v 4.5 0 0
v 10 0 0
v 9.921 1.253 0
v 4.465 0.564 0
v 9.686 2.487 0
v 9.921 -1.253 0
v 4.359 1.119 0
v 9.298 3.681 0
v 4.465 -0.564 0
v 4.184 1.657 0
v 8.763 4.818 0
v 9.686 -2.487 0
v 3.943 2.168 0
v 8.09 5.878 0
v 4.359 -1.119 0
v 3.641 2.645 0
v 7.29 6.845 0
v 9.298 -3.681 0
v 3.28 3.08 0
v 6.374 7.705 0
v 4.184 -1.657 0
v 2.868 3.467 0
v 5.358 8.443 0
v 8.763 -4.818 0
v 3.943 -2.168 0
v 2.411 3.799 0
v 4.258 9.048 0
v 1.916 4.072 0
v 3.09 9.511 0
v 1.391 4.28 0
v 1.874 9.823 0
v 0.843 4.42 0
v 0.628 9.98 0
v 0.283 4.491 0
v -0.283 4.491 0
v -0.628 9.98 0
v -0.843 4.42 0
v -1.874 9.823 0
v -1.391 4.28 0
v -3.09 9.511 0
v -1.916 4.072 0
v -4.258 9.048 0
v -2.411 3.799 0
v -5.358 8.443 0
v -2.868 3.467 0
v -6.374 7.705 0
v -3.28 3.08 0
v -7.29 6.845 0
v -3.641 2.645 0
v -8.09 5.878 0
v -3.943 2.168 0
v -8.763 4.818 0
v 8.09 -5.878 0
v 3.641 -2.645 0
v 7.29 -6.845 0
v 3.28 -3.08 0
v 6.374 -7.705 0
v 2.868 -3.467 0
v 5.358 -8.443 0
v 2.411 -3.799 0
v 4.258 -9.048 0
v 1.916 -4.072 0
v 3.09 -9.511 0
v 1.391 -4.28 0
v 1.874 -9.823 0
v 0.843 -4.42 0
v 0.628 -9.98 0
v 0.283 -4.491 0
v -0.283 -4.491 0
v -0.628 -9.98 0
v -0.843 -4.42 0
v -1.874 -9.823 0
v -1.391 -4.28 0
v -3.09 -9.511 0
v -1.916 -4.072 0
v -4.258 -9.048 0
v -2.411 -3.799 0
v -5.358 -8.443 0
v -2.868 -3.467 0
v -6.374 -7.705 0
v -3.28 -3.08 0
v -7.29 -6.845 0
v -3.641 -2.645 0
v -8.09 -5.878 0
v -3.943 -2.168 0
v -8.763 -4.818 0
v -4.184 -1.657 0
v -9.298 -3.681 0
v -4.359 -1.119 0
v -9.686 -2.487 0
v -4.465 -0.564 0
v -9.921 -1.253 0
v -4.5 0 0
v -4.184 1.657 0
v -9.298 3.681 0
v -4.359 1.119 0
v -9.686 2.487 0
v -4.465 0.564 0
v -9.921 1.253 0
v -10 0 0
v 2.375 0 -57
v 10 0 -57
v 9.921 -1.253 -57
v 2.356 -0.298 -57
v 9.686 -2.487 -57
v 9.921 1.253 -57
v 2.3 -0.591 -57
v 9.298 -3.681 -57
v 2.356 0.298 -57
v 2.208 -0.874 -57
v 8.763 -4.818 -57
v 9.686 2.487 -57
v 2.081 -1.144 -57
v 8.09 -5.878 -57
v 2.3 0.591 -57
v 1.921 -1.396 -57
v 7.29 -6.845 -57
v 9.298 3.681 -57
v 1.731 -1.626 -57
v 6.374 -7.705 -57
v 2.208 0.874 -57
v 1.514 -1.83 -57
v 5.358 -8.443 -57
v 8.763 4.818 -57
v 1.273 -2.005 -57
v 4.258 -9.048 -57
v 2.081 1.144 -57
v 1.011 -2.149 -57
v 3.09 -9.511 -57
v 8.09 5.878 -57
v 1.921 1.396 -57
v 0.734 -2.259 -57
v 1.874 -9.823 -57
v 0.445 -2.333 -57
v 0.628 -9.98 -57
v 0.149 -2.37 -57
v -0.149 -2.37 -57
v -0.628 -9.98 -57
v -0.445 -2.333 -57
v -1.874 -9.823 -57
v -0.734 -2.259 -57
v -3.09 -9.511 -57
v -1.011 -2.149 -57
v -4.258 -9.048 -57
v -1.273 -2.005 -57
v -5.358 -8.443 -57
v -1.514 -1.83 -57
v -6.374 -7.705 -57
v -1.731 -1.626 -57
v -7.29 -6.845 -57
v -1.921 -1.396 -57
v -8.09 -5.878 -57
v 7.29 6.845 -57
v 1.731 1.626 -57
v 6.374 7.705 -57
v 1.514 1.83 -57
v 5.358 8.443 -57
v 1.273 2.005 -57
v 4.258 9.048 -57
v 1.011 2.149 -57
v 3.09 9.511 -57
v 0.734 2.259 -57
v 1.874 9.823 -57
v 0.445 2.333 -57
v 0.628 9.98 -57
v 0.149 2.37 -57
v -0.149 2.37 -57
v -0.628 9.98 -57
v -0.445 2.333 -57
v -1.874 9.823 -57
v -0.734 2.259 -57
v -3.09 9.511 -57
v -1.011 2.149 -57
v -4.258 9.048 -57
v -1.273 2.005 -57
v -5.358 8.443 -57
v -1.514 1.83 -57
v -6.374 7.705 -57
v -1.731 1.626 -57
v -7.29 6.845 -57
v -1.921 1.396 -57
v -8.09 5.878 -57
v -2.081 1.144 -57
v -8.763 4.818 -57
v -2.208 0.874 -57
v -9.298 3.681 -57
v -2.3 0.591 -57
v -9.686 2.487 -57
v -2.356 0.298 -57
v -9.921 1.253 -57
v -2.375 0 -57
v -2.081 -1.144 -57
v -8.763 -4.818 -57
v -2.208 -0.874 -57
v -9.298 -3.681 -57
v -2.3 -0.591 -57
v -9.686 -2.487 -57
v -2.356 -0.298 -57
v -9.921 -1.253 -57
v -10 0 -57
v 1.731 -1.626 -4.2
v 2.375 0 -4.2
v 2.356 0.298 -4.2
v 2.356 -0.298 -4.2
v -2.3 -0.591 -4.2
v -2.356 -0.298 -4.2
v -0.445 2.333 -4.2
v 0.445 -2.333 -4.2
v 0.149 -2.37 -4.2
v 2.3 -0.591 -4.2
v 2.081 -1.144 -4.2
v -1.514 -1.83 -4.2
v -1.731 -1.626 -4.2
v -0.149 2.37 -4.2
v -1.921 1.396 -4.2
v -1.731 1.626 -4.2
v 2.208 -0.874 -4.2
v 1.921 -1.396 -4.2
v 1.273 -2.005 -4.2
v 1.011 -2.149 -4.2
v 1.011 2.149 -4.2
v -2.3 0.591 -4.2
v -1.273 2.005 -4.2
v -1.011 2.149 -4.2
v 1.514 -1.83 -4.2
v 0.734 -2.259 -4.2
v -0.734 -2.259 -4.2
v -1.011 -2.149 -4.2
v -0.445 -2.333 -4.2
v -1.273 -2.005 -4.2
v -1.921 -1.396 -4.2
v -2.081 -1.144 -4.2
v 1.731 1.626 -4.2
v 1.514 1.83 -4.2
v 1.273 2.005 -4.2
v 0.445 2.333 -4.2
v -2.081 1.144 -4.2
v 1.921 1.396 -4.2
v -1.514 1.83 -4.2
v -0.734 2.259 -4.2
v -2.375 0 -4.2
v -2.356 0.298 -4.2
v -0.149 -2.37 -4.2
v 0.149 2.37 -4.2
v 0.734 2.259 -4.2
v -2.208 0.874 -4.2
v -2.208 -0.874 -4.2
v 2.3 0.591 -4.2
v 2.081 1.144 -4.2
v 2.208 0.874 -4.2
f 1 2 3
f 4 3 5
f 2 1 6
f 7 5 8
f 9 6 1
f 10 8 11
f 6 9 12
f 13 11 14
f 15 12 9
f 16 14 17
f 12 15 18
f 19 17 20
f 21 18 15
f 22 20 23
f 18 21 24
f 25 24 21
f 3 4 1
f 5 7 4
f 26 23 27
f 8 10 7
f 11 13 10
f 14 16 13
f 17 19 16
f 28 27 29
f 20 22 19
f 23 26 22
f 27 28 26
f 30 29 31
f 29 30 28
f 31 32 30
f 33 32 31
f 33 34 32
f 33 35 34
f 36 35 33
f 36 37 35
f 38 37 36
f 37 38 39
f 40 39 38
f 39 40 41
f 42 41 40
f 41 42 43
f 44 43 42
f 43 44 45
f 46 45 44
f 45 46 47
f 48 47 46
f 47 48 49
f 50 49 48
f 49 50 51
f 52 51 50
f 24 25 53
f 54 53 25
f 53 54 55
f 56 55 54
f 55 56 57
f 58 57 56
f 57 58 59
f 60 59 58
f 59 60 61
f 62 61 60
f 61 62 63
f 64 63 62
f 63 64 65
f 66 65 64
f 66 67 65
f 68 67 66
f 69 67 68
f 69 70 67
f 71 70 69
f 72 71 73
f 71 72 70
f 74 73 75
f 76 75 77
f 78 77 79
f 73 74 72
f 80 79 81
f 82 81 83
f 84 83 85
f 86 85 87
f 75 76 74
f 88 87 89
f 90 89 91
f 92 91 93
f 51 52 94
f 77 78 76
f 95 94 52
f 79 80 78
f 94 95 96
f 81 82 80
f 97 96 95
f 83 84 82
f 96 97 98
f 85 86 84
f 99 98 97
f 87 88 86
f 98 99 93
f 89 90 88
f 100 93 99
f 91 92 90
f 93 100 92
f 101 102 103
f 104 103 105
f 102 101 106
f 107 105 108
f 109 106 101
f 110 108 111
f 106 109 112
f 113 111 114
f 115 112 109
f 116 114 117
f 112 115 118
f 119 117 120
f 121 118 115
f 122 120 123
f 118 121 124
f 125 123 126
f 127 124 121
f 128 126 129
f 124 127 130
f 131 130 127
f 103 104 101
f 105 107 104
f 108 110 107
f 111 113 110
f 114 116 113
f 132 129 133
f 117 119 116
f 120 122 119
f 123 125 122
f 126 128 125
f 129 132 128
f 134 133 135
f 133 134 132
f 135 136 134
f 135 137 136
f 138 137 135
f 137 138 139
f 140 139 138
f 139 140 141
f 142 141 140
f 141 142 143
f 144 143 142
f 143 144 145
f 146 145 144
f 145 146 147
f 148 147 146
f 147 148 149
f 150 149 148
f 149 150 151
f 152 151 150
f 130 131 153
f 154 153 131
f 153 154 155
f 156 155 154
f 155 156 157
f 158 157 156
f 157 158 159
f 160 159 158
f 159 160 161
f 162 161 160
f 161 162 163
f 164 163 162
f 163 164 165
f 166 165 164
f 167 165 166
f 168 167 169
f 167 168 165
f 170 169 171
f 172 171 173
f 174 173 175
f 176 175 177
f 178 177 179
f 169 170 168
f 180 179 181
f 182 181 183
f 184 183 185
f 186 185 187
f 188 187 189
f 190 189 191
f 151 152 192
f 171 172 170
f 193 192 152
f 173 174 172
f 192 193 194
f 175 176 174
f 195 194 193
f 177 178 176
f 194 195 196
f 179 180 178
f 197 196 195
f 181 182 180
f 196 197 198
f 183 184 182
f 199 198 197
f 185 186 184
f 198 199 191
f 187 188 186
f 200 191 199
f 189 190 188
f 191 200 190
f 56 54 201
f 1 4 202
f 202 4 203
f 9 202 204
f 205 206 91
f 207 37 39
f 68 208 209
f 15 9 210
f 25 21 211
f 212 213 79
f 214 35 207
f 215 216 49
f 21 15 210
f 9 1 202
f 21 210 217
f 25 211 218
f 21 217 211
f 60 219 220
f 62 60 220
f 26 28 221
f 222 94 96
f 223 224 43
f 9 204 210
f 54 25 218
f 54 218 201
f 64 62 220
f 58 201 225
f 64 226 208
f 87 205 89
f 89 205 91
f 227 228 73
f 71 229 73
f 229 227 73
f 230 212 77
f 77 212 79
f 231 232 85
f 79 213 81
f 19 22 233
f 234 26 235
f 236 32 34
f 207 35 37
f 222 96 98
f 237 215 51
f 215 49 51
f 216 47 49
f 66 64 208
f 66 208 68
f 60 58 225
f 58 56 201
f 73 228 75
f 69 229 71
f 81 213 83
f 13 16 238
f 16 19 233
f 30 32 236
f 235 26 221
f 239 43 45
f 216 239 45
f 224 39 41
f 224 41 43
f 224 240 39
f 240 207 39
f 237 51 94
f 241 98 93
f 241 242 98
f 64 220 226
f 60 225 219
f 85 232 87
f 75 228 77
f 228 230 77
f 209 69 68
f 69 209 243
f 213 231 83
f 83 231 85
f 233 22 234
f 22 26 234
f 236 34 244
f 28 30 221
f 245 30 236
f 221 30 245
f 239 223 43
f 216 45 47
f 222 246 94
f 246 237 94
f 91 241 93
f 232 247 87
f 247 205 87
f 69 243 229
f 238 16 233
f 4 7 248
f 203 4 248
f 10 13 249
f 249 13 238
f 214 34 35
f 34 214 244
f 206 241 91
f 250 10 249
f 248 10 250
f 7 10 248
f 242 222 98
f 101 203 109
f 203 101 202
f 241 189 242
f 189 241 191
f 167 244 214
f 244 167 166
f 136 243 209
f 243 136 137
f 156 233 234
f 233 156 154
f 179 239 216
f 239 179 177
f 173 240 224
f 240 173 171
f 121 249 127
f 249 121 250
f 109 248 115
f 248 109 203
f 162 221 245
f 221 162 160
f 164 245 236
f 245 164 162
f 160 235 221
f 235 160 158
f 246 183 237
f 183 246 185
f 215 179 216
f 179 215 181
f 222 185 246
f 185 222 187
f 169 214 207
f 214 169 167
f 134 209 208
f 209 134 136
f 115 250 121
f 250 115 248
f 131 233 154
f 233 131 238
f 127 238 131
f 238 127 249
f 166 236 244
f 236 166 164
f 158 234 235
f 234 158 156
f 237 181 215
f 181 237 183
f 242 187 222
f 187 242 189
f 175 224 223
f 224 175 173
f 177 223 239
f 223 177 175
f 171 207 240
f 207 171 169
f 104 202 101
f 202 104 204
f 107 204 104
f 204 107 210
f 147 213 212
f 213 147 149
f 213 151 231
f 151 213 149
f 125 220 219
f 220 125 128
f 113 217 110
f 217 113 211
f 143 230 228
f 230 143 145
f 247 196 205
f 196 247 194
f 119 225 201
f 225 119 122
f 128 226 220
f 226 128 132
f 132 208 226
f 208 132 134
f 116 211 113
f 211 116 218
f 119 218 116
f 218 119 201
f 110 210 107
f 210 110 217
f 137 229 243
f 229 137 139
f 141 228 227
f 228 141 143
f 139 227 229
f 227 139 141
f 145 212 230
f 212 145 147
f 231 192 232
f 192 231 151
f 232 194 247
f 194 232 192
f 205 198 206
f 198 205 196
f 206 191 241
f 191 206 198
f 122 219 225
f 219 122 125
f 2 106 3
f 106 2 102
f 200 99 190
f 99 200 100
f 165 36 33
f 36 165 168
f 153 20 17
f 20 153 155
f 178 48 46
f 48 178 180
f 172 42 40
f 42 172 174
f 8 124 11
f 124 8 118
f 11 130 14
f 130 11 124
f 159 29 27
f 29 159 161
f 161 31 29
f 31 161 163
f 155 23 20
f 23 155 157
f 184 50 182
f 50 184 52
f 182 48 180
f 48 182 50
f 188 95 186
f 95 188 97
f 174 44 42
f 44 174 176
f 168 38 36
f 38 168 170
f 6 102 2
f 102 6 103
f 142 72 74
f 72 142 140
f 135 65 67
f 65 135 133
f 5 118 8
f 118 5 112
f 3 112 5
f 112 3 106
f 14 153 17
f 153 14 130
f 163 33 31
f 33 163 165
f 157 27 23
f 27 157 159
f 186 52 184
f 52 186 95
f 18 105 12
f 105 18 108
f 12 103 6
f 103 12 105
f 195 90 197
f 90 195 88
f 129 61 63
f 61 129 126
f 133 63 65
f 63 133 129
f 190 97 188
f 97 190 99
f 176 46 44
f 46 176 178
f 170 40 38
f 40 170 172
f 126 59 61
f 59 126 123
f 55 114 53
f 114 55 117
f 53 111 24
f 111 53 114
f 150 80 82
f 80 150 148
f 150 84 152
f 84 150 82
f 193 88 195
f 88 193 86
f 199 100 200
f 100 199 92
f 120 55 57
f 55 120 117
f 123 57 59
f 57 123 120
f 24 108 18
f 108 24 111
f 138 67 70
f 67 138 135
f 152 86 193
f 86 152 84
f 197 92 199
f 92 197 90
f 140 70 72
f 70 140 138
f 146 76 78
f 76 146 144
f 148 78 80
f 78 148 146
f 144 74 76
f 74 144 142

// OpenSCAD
$fn = 50;


difference() {
	union() {
		translate(v = [0, 0, -57.0000000000]) {
			cylinder(h = 57, r = 10.0000000000);
		}
		cylinder(h = 0, r = 20.0000000000);
	}
	union() {
		translate(v = [0, 0, 0]) {
			rotate(a = [0, 0, 0]) {
				difference() {
					union() {
						#translate(v = [0, 0, -57.0000000000]) {
							cylinder(h = 57, r = 2.2500000000);
						}
						#translate(v = [0, 0, -4.2000000000]) {
							cylinder(h = 4.2000000000, r = 10.0000000000, r1 = 2.3750000000, r2 = 4.5000000000);
						}
						#translate(v = [0, 0, -57.0000000000]) {
							cylinder(h = 57, r = 2.3750000000);
						}
						#translate(v = [0, 0, -57.0000000000]) {
							cylinder(h = 57, r = 2.2500000000);
						}
					}
					union();
				}
			}
		}
	}
}
